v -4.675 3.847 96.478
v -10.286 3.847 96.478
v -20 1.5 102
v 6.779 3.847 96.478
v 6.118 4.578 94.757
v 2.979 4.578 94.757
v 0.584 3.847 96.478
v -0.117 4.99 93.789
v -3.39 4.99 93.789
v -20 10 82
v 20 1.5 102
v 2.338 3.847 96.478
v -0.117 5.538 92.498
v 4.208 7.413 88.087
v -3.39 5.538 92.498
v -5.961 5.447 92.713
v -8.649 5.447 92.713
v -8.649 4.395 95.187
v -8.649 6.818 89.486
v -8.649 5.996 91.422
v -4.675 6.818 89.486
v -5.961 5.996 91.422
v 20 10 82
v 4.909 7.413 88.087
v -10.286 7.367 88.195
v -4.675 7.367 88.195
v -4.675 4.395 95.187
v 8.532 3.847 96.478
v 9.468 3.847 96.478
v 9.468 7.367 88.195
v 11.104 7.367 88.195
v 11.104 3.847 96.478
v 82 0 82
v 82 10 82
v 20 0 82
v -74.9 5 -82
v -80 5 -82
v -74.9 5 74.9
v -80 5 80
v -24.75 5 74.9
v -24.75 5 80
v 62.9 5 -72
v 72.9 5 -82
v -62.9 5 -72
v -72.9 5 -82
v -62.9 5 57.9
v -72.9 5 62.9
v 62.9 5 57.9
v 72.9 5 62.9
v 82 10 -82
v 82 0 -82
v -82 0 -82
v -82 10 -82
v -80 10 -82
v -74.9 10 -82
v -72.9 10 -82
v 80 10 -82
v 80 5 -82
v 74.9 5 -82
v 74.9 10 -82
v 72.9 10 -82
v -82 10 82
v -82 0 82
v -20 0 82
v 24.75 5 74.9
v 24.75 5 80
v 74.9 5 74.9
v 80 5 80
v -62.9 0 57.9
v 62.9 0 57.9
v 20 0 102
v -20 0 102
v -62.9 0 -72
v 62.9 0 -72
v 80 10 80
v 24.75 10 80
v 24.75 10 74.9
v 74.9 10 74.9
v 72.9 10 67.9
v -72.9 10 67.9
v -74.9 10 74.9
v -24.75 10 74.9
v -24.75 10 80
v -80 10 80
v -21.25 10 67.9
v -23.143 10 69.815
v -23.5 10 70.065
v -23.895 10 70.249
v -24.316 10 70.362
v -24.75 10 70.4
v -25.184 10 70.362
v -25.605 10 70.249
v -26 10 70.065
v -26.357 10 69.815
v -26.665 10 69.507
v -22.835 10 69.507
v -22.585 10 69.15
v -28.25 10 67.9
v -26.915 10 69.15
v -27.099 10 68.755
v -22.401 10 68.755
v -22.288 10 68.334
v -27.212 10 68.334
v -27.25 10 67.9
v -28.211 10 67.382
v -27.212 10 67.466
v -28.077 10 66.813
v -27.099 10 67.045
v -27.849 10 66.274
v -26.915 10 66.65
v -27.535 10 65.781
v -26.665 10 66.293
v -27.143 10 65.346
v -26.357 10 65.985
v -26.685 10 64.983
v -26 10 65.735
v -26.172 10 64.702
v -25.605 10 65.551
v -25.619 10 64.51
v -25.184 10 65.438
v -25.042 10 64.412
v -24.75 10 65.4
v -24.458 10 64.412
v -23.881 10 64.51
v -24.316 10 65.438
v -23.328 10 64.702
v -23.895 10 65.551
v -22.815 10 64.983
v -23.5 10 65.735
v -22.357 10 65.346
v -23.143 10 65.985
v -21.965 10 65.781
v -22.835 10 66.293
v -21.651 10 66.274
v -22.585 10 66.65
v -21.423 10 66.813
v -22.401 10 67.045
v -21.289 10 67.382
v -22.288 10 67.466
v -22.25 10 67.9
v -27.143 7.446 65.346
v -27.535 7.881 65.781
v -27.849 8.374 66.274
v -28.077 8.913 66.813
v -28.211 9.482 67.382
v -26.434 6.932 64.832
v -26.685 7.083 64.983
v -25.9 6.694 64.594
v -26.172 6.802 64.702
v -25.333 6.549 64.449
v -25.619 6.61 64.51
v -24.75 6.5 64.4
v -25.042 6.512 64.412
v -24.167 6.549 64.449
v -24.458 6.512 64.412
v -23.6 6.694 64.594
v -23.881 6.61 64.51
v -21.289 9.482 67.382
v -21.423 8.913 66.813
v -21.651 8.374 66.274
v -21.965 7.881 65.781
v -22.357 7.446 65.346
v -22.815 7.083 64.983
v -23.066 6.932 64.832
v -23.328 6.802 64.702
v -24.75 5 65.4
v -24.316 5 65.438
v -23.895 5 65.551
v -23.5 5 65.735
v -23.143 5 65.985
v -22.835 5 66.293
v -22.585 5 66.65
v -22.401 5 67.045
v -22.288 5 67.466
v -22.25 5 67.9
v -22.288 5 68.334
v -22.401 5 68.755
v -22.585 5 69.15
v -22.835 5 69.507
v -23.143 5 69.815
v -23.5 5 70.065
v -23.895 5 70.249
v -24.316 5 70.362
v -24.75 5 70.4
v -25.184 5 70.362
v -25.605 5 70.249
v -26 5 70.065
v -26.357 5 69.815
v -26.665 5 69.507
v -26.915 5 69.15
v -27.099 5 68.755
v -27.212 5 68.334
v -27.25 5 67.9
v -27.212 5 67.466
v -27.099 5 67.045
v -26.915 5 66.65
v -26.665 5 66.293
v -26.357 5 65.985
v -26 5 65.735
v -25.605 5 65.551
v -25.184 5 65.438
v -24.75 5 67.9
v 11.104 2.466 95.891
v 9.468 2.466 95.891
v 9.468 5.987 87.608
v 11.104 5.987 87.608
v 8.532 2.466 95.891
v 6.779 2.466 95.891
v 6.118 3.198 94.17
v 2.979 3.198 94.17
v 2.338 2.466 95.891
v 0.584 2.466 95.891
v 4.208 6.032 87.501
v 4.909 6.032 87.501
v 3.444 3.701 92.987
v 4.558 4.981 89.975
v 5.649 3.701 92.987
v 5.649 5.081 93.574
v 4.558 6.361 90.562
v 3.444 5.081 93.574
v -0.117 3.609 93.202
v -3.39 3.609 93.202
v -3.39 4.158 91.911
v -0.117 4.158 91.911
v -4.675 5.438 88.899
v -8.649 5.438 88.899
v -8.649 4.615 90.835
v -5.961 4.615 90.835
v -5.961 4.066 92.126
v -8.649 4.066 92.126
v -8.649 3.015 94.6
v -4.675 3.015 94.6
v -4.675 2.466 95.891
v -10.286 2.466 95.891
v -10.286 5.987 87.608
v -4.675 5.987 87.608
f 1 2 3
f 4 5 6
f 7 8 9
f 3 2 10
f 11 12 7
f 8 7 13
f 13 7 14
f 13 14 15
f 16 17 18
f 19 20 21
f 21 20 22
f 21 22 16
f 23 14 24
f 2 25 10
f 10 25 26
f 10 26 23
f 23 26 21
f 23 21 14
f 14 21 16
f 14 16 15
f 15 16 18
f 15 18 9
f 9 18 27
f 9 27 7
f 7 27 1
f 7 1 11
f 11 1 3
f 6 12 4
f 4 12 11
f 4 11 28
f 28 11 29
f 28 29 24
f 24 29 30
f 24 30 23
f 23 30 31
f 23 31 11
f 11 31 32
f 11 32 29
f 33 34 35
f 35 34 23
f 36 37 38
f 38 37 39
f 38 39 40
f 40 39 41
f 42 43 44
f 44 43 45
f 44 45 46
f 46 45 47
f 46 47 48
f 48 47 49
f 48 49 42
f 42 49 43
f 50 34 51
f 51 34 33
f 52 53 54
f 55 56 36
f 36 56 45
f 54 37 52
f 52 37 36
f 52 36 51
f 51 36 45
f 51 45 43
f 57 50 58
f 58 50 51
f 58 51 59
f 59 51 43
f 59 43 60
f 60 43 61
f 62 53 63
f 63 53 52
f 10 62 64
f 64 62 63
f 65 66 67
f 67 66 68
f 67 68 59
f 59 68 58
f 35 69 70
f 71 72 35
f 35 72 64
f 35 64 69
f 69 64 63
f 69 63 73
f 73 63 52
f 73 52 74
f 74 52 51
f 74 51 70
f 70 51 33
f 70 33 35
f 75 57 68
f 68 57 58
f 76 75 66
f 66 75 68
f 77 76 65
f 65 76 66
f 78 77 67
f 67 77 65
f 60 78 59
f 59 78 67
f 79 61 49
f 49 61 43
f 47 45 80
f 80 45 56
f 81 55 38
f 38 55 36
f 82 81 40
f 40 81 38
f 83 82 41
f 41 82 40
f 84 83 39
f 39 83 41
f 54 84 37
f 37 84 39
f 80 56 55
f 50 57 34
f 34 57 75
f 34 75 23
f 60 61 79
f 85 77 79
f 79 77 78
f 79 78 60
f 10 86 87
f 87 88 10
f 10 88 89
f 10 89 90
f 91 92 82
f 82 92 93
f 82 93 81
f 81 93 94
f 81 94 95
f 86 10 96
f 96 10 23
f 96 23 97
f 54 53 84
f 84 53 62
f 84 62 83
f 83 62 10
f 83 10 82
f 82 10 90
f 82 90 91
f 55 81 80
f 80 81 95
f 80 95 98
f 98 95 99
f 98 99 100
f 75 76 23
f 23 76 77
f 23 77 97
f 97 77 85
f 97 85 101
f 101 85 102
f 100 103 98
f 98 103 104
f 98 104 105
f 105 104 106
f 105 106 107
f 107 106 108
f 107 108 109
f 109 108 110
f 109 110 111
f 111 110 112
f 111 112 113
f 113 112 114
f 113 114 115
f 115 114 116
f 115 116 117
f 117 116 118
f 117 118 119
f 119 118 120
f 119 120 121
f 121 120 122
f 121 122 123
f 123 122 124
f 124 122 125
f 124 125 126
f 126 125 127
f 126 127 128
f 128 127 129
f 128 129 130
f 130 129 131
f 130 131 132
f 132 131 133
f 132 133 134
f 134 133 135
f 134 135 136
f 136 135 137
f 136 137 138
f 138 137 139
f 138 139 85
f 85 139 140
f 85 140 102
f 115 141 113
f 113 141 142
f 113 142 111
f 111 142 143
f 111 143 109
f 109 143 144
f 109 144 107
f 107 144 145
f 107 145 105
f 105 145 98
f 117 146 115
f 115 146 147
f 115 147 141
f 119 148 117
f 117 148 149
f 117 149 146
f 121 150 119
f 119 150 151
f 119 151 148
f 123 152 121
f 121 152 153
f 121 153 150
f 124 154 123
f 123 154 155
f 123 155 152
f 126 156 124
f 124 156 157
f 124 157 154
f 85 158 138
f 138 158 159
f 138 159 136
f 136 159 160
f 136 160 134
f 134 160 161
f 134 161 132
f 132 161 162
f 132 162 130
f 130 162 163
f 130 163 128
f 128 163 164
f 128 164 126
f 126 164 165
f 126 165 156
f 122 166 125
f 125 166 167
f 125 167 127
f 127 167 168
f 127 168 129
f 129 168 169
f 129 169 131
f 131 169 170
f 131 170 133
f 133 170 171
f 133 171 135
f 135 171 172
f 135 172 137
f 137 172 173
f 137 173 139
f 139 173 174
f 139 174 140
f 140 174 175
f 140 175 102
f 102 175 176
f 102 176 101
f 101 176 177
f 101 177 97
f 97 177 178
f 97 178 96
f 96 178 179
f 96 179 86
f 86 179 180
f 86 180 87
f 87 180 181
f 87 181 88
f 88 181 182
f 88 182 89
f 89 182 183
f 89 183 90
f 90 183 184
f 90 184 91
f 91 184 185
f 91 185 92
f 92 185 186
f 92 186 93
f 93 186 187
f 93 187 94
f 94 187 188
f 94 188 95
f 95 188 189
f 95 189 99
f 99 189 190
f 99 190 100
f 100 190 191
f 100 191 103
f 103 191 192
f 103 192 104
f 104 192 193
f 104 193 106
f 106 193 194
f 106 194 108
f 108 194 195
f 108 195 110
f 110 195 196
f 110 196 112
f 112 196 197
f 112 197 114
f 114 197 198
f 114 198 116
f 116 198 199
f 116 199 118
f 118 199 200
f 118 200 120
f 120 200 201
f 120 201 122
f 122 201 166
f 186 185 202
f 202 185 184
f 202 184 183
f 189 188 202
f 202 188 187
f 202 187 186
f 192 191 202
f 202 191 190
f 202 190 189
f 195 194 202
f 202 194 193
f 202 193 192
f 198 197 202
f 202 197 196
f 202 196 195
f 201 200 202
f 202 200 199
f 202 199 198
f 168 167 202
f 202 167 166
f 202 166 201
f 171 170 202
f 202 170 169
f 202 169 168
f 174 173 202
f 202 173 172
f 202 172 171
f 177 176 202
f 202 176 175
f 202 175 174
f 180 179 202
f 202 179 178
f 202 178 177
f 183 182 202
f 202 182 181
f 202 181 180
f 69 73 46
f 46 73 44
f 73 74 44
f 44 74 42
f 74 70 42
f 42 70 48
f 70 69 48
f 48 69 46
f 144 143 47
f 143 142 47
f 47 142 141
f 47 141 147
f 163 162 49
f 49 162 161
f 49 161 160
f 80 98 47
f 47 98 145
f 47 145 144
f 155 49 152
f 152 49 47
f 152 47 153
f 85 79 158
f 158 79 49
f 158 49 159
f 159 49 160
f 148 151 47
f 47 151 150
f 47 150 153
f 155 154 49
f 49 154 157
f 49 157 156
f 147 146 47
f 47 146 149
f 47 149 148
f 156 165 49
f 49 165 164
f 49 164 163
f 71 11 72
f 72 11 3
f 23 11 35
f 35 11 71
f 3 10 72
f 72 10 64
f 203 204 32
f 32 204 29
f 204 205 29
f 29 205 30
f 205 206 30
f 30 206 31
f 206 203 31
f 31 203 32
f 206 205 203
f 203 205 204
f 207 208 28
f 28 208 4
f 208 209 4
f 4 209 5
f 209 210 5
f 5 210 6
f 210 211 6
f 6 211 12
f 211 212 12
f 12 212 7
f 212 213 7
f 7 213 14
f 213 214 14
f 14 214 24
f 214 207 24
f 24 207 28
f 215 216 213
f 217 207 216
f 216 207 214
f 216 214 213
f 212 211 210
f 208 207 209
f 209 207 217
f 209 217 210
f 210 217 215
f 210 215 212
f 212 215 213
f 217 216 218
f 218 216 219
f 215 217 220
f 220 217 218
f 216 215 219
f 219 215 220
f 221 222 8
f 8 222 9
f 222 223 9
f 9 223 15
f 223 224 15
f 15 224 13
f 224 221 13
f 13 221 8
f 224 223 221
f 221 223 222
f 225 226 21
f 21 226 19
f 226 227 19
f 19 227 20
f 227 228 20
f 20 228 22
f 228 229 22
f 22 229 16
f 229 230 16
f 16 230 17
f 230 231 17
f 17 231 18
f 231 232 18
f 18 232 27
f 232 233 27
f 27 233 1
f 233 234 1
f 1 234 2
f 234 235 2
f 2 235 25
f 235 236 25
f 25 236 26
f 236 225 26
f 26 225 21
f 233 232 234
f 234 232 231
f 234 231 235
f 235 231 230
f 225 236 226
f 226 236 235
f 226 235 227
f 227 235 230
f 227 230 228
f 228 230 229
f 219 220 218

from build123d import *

# Parameters (mm, degrees)
SKETCH1_W           = 164
SKETCH1_H           = 164
BOSS_EXTRUDE1_DEPTH = 5
BOSS_EXTRUDE2_DEPTH = 5
SKETCH3_R           = 3.5
SKETCH3_R_2         = 2.5
BOSS_EXTRUDE3_DEPTH = 5
SKETCH5_W           = 125.8
SKETCH5_H           = 129.9
CUT_EXTRUDE1_DEPTH  = 117.073252733
CHAMFER2_SIZE       = 10
BOSS_EXTRUDE4_DEPTH = 20
SKETCH7_W           = 3.272727273
SKETCH7_H           = 1.402597403
SKETCH7_W_2         = 1.636363636
SKETCH7_H_2         = 9
CUT_EXTRUDE3_DEPTH  = 1.5


with BuildPart() as part:
    # Sketch1 → Boss-Extrude1 (new body)
    with BuildSketch(Plane(origin=(0, 0, 0), x_dir=(1, 0, 0), z_dir=(0, 1, 0))):
        Rectangle(SKETCH1_W, SKETCH1_H)
    extrude(amount=BOSS_EXTRUDE1_DEPTH)

    # Sketch2 → Boss-Extrude2 (add)
    with BuildSketch(Plane(origin=(0, 5, 0), x_dir=(1, 0, 0), z_dir=(0, 1, 0))):
        Polygon((-80, -80), (-80, 82), (-82, 82), (-82, -82), (82, -82), (82, 82), (80, 82), (80, -80), (24.75, -80), (24.75, -74.9), (74.9, -74.9), (74.9, 82), (72.9, 82), (72.9, -72.9), (-72.9, -72.9), (-72.9, 82), (-74.9, 82), (-74.9, -74.9), (-24.75, -74.9), (-24.75, -80), align=None)
    extrude(amount=BOSS_EXTRUDE2_DEPTH)

    # Sketch3 → Boss-Extrude3 (add)
    with BuildSketch(Plane(origin=(0, 5, 0), x_dir=(1, 0, 0), z_dir=(0, 1, 0))):
        with Locations(Location((-24.75, -67.9, 0), (0, 0, 270))):
            Circle(SKETCH3_R)
        with Locations(Location((-24.75, -67.9, 0), (0, 0, 270))):
            Circle(SKETCH3_R_2, mode=Mode.SUBTRACT)
    extrude(amount=BOSS_EXTRUDE3_DEPTH)

    # Sketch5 → Cut-Extrude1 (cut, through all)
    with BuildSketch(Plane(origin=(0, 5, 0), x_dir=(1, 0, 0), z_dir=(0, 1, 0))):
        with Locations((0, 7.05)):
            Rectangle(SKETCH5_W, SKETCH5_H)
    extrude(amount=-CUT_EXTRUDE1_DEPTH, mode=Mode.SUBTRACT)

    # Chamfer2
    # the kernel refuses this chamfer: 10 mm, written as the material it adds along each edge
    with BuildSketch(Plane(origin=(98.61682988, 5, 72.9), x_dir=(0, -0.027495876610586403, -0.9996219169112968), z_dir=(-1, 0, 0))) as chamfer2_piece_1_section:
        Polygon((CHAMFER2_SIZE * 0.999621916911, -CHAMFER2_SIZE * 0.0274958766106), (-CHAMFER2_SIZE * 0.0274958766106, -CHAMFER2_SIZE * 0.999621916911), (0, 0), align=None)
    chamfer2_piece_1 = extrude(amount=171.51682988, mode=Mode.PRIVATE)
    chamfer2_piece_1 = split(chamfer2_piece_1, bisect_by=Plane(origin=(0.76457013, 10, 69.034324166), z_dir=(0, -1, 0)), keep=Keep.TOP, mode=Mode.PRIVATE)
    chamfer2_piece_1 = split(chamfer2_piece_1, bisect_by=Plane(origin=(74.9, 7.221559046, 69.034324166), z_dir=(-1, 0, 0)), keep=Keep.TOP, mode=Mode.PRIVATE)
    chamfer2_piece_1 = chamfer2_piece_1 - Plane(origin=(-24.75, 7.221559046, 67.9), x_dir=(0, 0, 1), z_dir=(0, -1, 0)) * Cylinder(2.5, 384, mode=Mode.PRIVATE)
    add(chamfer2_piece_1)

    # Sketch6 → Boss-Extrude4 (add, symmetric)
    with BuildSketch(Plane(origin=(0, 0, 0), x_dir=(0, 0, -1), z_dir=(1, 0, 0))):
        Polygon((-82, 0), (-82, 10), (-102, 1.5), (-102, 0), align=None)
    extrude(amount=BOSS_EXTRUDE4_DEPTH, both=True)

    # Sketch7 → Cut-Extrude3 (cut)
    # profile 1 of 4: a face of its own
    with BuildSketch(Plane(origin=(0, -16.938205466, 145.38401286), x_dir=(1, 0, 0), z_dir=(0, -0.9203309184584746, -0.39114064034485163))):
        Polygon((-8.649350649, -60.736982492), (-8.649350649, -58.633086388), (-5.961038961, -58.633086388), (-5.961038961, -57.230488986), (-8.649350649, -57.230488986), (-8.649350649, -54.542177297), (-4.675324675, -54.542177297), (-4.675324675, -53.139579895), (-10.285714286, -53.139579895), (-10.285714286, -62.139579895), (-4.675324675, -62.139579895), (-4.675324675, -60.736982492), align=None)
    # profile 2 of 4: a face of its own
    with BuildSketch(Plane(origin=(0, -16.938205466, 145.38401286), x_dir=(1, 0, 0), z_dir=(0, -0.9203309184584746, -0.39114064034485163))):
        with Locations((-1.753246754, -56.762956519)):
            Rectangle(SKETCH7_W, SKETCH7_H)
    # profile 3 of 4: a face of its own
    with BuildSketch(Plane(origin=(0, -16.938205466, 145.38401286), x_dir=(1, 0, 0), z_dir=(0, -0.9203309184584746, -0.39114064034485163))):
        Polygon((6.779220779, -53.139579895), (6.118100649, -55.009709765), (2.978693182, -55.009709765), (2.337662338, -53.139579895), (0.584415584, -53.139579895), (4.207792208, -62.256463012), (4.909090909, -62.256463012), (8.532467532, -53.139579895), align=None)
        Polygon((4.558441558, -59.568151323), (3.444399351, -56.295424051), (5.648741883, -56.295424051), align=None, mode=Mode.SUBTRACT)
    # profile 4 of 4: a face of its own
    with BuildSketch(Plane(origin=(0, -16.938205466, 145.38401286), x_dir=(1, 0, 0), z_dir=(0, -0.9203309184584746, -0.39114064034485163))):
        with Locations((10.285714286, -57.639579895)):
            Rectangle(SKETCH7_W_2, SKETCH7_H_2)
    extrude(amount=CUT_EXTRUDE3_DEPTH, mode=Mode.SUBTRACT)


solid = part.part
